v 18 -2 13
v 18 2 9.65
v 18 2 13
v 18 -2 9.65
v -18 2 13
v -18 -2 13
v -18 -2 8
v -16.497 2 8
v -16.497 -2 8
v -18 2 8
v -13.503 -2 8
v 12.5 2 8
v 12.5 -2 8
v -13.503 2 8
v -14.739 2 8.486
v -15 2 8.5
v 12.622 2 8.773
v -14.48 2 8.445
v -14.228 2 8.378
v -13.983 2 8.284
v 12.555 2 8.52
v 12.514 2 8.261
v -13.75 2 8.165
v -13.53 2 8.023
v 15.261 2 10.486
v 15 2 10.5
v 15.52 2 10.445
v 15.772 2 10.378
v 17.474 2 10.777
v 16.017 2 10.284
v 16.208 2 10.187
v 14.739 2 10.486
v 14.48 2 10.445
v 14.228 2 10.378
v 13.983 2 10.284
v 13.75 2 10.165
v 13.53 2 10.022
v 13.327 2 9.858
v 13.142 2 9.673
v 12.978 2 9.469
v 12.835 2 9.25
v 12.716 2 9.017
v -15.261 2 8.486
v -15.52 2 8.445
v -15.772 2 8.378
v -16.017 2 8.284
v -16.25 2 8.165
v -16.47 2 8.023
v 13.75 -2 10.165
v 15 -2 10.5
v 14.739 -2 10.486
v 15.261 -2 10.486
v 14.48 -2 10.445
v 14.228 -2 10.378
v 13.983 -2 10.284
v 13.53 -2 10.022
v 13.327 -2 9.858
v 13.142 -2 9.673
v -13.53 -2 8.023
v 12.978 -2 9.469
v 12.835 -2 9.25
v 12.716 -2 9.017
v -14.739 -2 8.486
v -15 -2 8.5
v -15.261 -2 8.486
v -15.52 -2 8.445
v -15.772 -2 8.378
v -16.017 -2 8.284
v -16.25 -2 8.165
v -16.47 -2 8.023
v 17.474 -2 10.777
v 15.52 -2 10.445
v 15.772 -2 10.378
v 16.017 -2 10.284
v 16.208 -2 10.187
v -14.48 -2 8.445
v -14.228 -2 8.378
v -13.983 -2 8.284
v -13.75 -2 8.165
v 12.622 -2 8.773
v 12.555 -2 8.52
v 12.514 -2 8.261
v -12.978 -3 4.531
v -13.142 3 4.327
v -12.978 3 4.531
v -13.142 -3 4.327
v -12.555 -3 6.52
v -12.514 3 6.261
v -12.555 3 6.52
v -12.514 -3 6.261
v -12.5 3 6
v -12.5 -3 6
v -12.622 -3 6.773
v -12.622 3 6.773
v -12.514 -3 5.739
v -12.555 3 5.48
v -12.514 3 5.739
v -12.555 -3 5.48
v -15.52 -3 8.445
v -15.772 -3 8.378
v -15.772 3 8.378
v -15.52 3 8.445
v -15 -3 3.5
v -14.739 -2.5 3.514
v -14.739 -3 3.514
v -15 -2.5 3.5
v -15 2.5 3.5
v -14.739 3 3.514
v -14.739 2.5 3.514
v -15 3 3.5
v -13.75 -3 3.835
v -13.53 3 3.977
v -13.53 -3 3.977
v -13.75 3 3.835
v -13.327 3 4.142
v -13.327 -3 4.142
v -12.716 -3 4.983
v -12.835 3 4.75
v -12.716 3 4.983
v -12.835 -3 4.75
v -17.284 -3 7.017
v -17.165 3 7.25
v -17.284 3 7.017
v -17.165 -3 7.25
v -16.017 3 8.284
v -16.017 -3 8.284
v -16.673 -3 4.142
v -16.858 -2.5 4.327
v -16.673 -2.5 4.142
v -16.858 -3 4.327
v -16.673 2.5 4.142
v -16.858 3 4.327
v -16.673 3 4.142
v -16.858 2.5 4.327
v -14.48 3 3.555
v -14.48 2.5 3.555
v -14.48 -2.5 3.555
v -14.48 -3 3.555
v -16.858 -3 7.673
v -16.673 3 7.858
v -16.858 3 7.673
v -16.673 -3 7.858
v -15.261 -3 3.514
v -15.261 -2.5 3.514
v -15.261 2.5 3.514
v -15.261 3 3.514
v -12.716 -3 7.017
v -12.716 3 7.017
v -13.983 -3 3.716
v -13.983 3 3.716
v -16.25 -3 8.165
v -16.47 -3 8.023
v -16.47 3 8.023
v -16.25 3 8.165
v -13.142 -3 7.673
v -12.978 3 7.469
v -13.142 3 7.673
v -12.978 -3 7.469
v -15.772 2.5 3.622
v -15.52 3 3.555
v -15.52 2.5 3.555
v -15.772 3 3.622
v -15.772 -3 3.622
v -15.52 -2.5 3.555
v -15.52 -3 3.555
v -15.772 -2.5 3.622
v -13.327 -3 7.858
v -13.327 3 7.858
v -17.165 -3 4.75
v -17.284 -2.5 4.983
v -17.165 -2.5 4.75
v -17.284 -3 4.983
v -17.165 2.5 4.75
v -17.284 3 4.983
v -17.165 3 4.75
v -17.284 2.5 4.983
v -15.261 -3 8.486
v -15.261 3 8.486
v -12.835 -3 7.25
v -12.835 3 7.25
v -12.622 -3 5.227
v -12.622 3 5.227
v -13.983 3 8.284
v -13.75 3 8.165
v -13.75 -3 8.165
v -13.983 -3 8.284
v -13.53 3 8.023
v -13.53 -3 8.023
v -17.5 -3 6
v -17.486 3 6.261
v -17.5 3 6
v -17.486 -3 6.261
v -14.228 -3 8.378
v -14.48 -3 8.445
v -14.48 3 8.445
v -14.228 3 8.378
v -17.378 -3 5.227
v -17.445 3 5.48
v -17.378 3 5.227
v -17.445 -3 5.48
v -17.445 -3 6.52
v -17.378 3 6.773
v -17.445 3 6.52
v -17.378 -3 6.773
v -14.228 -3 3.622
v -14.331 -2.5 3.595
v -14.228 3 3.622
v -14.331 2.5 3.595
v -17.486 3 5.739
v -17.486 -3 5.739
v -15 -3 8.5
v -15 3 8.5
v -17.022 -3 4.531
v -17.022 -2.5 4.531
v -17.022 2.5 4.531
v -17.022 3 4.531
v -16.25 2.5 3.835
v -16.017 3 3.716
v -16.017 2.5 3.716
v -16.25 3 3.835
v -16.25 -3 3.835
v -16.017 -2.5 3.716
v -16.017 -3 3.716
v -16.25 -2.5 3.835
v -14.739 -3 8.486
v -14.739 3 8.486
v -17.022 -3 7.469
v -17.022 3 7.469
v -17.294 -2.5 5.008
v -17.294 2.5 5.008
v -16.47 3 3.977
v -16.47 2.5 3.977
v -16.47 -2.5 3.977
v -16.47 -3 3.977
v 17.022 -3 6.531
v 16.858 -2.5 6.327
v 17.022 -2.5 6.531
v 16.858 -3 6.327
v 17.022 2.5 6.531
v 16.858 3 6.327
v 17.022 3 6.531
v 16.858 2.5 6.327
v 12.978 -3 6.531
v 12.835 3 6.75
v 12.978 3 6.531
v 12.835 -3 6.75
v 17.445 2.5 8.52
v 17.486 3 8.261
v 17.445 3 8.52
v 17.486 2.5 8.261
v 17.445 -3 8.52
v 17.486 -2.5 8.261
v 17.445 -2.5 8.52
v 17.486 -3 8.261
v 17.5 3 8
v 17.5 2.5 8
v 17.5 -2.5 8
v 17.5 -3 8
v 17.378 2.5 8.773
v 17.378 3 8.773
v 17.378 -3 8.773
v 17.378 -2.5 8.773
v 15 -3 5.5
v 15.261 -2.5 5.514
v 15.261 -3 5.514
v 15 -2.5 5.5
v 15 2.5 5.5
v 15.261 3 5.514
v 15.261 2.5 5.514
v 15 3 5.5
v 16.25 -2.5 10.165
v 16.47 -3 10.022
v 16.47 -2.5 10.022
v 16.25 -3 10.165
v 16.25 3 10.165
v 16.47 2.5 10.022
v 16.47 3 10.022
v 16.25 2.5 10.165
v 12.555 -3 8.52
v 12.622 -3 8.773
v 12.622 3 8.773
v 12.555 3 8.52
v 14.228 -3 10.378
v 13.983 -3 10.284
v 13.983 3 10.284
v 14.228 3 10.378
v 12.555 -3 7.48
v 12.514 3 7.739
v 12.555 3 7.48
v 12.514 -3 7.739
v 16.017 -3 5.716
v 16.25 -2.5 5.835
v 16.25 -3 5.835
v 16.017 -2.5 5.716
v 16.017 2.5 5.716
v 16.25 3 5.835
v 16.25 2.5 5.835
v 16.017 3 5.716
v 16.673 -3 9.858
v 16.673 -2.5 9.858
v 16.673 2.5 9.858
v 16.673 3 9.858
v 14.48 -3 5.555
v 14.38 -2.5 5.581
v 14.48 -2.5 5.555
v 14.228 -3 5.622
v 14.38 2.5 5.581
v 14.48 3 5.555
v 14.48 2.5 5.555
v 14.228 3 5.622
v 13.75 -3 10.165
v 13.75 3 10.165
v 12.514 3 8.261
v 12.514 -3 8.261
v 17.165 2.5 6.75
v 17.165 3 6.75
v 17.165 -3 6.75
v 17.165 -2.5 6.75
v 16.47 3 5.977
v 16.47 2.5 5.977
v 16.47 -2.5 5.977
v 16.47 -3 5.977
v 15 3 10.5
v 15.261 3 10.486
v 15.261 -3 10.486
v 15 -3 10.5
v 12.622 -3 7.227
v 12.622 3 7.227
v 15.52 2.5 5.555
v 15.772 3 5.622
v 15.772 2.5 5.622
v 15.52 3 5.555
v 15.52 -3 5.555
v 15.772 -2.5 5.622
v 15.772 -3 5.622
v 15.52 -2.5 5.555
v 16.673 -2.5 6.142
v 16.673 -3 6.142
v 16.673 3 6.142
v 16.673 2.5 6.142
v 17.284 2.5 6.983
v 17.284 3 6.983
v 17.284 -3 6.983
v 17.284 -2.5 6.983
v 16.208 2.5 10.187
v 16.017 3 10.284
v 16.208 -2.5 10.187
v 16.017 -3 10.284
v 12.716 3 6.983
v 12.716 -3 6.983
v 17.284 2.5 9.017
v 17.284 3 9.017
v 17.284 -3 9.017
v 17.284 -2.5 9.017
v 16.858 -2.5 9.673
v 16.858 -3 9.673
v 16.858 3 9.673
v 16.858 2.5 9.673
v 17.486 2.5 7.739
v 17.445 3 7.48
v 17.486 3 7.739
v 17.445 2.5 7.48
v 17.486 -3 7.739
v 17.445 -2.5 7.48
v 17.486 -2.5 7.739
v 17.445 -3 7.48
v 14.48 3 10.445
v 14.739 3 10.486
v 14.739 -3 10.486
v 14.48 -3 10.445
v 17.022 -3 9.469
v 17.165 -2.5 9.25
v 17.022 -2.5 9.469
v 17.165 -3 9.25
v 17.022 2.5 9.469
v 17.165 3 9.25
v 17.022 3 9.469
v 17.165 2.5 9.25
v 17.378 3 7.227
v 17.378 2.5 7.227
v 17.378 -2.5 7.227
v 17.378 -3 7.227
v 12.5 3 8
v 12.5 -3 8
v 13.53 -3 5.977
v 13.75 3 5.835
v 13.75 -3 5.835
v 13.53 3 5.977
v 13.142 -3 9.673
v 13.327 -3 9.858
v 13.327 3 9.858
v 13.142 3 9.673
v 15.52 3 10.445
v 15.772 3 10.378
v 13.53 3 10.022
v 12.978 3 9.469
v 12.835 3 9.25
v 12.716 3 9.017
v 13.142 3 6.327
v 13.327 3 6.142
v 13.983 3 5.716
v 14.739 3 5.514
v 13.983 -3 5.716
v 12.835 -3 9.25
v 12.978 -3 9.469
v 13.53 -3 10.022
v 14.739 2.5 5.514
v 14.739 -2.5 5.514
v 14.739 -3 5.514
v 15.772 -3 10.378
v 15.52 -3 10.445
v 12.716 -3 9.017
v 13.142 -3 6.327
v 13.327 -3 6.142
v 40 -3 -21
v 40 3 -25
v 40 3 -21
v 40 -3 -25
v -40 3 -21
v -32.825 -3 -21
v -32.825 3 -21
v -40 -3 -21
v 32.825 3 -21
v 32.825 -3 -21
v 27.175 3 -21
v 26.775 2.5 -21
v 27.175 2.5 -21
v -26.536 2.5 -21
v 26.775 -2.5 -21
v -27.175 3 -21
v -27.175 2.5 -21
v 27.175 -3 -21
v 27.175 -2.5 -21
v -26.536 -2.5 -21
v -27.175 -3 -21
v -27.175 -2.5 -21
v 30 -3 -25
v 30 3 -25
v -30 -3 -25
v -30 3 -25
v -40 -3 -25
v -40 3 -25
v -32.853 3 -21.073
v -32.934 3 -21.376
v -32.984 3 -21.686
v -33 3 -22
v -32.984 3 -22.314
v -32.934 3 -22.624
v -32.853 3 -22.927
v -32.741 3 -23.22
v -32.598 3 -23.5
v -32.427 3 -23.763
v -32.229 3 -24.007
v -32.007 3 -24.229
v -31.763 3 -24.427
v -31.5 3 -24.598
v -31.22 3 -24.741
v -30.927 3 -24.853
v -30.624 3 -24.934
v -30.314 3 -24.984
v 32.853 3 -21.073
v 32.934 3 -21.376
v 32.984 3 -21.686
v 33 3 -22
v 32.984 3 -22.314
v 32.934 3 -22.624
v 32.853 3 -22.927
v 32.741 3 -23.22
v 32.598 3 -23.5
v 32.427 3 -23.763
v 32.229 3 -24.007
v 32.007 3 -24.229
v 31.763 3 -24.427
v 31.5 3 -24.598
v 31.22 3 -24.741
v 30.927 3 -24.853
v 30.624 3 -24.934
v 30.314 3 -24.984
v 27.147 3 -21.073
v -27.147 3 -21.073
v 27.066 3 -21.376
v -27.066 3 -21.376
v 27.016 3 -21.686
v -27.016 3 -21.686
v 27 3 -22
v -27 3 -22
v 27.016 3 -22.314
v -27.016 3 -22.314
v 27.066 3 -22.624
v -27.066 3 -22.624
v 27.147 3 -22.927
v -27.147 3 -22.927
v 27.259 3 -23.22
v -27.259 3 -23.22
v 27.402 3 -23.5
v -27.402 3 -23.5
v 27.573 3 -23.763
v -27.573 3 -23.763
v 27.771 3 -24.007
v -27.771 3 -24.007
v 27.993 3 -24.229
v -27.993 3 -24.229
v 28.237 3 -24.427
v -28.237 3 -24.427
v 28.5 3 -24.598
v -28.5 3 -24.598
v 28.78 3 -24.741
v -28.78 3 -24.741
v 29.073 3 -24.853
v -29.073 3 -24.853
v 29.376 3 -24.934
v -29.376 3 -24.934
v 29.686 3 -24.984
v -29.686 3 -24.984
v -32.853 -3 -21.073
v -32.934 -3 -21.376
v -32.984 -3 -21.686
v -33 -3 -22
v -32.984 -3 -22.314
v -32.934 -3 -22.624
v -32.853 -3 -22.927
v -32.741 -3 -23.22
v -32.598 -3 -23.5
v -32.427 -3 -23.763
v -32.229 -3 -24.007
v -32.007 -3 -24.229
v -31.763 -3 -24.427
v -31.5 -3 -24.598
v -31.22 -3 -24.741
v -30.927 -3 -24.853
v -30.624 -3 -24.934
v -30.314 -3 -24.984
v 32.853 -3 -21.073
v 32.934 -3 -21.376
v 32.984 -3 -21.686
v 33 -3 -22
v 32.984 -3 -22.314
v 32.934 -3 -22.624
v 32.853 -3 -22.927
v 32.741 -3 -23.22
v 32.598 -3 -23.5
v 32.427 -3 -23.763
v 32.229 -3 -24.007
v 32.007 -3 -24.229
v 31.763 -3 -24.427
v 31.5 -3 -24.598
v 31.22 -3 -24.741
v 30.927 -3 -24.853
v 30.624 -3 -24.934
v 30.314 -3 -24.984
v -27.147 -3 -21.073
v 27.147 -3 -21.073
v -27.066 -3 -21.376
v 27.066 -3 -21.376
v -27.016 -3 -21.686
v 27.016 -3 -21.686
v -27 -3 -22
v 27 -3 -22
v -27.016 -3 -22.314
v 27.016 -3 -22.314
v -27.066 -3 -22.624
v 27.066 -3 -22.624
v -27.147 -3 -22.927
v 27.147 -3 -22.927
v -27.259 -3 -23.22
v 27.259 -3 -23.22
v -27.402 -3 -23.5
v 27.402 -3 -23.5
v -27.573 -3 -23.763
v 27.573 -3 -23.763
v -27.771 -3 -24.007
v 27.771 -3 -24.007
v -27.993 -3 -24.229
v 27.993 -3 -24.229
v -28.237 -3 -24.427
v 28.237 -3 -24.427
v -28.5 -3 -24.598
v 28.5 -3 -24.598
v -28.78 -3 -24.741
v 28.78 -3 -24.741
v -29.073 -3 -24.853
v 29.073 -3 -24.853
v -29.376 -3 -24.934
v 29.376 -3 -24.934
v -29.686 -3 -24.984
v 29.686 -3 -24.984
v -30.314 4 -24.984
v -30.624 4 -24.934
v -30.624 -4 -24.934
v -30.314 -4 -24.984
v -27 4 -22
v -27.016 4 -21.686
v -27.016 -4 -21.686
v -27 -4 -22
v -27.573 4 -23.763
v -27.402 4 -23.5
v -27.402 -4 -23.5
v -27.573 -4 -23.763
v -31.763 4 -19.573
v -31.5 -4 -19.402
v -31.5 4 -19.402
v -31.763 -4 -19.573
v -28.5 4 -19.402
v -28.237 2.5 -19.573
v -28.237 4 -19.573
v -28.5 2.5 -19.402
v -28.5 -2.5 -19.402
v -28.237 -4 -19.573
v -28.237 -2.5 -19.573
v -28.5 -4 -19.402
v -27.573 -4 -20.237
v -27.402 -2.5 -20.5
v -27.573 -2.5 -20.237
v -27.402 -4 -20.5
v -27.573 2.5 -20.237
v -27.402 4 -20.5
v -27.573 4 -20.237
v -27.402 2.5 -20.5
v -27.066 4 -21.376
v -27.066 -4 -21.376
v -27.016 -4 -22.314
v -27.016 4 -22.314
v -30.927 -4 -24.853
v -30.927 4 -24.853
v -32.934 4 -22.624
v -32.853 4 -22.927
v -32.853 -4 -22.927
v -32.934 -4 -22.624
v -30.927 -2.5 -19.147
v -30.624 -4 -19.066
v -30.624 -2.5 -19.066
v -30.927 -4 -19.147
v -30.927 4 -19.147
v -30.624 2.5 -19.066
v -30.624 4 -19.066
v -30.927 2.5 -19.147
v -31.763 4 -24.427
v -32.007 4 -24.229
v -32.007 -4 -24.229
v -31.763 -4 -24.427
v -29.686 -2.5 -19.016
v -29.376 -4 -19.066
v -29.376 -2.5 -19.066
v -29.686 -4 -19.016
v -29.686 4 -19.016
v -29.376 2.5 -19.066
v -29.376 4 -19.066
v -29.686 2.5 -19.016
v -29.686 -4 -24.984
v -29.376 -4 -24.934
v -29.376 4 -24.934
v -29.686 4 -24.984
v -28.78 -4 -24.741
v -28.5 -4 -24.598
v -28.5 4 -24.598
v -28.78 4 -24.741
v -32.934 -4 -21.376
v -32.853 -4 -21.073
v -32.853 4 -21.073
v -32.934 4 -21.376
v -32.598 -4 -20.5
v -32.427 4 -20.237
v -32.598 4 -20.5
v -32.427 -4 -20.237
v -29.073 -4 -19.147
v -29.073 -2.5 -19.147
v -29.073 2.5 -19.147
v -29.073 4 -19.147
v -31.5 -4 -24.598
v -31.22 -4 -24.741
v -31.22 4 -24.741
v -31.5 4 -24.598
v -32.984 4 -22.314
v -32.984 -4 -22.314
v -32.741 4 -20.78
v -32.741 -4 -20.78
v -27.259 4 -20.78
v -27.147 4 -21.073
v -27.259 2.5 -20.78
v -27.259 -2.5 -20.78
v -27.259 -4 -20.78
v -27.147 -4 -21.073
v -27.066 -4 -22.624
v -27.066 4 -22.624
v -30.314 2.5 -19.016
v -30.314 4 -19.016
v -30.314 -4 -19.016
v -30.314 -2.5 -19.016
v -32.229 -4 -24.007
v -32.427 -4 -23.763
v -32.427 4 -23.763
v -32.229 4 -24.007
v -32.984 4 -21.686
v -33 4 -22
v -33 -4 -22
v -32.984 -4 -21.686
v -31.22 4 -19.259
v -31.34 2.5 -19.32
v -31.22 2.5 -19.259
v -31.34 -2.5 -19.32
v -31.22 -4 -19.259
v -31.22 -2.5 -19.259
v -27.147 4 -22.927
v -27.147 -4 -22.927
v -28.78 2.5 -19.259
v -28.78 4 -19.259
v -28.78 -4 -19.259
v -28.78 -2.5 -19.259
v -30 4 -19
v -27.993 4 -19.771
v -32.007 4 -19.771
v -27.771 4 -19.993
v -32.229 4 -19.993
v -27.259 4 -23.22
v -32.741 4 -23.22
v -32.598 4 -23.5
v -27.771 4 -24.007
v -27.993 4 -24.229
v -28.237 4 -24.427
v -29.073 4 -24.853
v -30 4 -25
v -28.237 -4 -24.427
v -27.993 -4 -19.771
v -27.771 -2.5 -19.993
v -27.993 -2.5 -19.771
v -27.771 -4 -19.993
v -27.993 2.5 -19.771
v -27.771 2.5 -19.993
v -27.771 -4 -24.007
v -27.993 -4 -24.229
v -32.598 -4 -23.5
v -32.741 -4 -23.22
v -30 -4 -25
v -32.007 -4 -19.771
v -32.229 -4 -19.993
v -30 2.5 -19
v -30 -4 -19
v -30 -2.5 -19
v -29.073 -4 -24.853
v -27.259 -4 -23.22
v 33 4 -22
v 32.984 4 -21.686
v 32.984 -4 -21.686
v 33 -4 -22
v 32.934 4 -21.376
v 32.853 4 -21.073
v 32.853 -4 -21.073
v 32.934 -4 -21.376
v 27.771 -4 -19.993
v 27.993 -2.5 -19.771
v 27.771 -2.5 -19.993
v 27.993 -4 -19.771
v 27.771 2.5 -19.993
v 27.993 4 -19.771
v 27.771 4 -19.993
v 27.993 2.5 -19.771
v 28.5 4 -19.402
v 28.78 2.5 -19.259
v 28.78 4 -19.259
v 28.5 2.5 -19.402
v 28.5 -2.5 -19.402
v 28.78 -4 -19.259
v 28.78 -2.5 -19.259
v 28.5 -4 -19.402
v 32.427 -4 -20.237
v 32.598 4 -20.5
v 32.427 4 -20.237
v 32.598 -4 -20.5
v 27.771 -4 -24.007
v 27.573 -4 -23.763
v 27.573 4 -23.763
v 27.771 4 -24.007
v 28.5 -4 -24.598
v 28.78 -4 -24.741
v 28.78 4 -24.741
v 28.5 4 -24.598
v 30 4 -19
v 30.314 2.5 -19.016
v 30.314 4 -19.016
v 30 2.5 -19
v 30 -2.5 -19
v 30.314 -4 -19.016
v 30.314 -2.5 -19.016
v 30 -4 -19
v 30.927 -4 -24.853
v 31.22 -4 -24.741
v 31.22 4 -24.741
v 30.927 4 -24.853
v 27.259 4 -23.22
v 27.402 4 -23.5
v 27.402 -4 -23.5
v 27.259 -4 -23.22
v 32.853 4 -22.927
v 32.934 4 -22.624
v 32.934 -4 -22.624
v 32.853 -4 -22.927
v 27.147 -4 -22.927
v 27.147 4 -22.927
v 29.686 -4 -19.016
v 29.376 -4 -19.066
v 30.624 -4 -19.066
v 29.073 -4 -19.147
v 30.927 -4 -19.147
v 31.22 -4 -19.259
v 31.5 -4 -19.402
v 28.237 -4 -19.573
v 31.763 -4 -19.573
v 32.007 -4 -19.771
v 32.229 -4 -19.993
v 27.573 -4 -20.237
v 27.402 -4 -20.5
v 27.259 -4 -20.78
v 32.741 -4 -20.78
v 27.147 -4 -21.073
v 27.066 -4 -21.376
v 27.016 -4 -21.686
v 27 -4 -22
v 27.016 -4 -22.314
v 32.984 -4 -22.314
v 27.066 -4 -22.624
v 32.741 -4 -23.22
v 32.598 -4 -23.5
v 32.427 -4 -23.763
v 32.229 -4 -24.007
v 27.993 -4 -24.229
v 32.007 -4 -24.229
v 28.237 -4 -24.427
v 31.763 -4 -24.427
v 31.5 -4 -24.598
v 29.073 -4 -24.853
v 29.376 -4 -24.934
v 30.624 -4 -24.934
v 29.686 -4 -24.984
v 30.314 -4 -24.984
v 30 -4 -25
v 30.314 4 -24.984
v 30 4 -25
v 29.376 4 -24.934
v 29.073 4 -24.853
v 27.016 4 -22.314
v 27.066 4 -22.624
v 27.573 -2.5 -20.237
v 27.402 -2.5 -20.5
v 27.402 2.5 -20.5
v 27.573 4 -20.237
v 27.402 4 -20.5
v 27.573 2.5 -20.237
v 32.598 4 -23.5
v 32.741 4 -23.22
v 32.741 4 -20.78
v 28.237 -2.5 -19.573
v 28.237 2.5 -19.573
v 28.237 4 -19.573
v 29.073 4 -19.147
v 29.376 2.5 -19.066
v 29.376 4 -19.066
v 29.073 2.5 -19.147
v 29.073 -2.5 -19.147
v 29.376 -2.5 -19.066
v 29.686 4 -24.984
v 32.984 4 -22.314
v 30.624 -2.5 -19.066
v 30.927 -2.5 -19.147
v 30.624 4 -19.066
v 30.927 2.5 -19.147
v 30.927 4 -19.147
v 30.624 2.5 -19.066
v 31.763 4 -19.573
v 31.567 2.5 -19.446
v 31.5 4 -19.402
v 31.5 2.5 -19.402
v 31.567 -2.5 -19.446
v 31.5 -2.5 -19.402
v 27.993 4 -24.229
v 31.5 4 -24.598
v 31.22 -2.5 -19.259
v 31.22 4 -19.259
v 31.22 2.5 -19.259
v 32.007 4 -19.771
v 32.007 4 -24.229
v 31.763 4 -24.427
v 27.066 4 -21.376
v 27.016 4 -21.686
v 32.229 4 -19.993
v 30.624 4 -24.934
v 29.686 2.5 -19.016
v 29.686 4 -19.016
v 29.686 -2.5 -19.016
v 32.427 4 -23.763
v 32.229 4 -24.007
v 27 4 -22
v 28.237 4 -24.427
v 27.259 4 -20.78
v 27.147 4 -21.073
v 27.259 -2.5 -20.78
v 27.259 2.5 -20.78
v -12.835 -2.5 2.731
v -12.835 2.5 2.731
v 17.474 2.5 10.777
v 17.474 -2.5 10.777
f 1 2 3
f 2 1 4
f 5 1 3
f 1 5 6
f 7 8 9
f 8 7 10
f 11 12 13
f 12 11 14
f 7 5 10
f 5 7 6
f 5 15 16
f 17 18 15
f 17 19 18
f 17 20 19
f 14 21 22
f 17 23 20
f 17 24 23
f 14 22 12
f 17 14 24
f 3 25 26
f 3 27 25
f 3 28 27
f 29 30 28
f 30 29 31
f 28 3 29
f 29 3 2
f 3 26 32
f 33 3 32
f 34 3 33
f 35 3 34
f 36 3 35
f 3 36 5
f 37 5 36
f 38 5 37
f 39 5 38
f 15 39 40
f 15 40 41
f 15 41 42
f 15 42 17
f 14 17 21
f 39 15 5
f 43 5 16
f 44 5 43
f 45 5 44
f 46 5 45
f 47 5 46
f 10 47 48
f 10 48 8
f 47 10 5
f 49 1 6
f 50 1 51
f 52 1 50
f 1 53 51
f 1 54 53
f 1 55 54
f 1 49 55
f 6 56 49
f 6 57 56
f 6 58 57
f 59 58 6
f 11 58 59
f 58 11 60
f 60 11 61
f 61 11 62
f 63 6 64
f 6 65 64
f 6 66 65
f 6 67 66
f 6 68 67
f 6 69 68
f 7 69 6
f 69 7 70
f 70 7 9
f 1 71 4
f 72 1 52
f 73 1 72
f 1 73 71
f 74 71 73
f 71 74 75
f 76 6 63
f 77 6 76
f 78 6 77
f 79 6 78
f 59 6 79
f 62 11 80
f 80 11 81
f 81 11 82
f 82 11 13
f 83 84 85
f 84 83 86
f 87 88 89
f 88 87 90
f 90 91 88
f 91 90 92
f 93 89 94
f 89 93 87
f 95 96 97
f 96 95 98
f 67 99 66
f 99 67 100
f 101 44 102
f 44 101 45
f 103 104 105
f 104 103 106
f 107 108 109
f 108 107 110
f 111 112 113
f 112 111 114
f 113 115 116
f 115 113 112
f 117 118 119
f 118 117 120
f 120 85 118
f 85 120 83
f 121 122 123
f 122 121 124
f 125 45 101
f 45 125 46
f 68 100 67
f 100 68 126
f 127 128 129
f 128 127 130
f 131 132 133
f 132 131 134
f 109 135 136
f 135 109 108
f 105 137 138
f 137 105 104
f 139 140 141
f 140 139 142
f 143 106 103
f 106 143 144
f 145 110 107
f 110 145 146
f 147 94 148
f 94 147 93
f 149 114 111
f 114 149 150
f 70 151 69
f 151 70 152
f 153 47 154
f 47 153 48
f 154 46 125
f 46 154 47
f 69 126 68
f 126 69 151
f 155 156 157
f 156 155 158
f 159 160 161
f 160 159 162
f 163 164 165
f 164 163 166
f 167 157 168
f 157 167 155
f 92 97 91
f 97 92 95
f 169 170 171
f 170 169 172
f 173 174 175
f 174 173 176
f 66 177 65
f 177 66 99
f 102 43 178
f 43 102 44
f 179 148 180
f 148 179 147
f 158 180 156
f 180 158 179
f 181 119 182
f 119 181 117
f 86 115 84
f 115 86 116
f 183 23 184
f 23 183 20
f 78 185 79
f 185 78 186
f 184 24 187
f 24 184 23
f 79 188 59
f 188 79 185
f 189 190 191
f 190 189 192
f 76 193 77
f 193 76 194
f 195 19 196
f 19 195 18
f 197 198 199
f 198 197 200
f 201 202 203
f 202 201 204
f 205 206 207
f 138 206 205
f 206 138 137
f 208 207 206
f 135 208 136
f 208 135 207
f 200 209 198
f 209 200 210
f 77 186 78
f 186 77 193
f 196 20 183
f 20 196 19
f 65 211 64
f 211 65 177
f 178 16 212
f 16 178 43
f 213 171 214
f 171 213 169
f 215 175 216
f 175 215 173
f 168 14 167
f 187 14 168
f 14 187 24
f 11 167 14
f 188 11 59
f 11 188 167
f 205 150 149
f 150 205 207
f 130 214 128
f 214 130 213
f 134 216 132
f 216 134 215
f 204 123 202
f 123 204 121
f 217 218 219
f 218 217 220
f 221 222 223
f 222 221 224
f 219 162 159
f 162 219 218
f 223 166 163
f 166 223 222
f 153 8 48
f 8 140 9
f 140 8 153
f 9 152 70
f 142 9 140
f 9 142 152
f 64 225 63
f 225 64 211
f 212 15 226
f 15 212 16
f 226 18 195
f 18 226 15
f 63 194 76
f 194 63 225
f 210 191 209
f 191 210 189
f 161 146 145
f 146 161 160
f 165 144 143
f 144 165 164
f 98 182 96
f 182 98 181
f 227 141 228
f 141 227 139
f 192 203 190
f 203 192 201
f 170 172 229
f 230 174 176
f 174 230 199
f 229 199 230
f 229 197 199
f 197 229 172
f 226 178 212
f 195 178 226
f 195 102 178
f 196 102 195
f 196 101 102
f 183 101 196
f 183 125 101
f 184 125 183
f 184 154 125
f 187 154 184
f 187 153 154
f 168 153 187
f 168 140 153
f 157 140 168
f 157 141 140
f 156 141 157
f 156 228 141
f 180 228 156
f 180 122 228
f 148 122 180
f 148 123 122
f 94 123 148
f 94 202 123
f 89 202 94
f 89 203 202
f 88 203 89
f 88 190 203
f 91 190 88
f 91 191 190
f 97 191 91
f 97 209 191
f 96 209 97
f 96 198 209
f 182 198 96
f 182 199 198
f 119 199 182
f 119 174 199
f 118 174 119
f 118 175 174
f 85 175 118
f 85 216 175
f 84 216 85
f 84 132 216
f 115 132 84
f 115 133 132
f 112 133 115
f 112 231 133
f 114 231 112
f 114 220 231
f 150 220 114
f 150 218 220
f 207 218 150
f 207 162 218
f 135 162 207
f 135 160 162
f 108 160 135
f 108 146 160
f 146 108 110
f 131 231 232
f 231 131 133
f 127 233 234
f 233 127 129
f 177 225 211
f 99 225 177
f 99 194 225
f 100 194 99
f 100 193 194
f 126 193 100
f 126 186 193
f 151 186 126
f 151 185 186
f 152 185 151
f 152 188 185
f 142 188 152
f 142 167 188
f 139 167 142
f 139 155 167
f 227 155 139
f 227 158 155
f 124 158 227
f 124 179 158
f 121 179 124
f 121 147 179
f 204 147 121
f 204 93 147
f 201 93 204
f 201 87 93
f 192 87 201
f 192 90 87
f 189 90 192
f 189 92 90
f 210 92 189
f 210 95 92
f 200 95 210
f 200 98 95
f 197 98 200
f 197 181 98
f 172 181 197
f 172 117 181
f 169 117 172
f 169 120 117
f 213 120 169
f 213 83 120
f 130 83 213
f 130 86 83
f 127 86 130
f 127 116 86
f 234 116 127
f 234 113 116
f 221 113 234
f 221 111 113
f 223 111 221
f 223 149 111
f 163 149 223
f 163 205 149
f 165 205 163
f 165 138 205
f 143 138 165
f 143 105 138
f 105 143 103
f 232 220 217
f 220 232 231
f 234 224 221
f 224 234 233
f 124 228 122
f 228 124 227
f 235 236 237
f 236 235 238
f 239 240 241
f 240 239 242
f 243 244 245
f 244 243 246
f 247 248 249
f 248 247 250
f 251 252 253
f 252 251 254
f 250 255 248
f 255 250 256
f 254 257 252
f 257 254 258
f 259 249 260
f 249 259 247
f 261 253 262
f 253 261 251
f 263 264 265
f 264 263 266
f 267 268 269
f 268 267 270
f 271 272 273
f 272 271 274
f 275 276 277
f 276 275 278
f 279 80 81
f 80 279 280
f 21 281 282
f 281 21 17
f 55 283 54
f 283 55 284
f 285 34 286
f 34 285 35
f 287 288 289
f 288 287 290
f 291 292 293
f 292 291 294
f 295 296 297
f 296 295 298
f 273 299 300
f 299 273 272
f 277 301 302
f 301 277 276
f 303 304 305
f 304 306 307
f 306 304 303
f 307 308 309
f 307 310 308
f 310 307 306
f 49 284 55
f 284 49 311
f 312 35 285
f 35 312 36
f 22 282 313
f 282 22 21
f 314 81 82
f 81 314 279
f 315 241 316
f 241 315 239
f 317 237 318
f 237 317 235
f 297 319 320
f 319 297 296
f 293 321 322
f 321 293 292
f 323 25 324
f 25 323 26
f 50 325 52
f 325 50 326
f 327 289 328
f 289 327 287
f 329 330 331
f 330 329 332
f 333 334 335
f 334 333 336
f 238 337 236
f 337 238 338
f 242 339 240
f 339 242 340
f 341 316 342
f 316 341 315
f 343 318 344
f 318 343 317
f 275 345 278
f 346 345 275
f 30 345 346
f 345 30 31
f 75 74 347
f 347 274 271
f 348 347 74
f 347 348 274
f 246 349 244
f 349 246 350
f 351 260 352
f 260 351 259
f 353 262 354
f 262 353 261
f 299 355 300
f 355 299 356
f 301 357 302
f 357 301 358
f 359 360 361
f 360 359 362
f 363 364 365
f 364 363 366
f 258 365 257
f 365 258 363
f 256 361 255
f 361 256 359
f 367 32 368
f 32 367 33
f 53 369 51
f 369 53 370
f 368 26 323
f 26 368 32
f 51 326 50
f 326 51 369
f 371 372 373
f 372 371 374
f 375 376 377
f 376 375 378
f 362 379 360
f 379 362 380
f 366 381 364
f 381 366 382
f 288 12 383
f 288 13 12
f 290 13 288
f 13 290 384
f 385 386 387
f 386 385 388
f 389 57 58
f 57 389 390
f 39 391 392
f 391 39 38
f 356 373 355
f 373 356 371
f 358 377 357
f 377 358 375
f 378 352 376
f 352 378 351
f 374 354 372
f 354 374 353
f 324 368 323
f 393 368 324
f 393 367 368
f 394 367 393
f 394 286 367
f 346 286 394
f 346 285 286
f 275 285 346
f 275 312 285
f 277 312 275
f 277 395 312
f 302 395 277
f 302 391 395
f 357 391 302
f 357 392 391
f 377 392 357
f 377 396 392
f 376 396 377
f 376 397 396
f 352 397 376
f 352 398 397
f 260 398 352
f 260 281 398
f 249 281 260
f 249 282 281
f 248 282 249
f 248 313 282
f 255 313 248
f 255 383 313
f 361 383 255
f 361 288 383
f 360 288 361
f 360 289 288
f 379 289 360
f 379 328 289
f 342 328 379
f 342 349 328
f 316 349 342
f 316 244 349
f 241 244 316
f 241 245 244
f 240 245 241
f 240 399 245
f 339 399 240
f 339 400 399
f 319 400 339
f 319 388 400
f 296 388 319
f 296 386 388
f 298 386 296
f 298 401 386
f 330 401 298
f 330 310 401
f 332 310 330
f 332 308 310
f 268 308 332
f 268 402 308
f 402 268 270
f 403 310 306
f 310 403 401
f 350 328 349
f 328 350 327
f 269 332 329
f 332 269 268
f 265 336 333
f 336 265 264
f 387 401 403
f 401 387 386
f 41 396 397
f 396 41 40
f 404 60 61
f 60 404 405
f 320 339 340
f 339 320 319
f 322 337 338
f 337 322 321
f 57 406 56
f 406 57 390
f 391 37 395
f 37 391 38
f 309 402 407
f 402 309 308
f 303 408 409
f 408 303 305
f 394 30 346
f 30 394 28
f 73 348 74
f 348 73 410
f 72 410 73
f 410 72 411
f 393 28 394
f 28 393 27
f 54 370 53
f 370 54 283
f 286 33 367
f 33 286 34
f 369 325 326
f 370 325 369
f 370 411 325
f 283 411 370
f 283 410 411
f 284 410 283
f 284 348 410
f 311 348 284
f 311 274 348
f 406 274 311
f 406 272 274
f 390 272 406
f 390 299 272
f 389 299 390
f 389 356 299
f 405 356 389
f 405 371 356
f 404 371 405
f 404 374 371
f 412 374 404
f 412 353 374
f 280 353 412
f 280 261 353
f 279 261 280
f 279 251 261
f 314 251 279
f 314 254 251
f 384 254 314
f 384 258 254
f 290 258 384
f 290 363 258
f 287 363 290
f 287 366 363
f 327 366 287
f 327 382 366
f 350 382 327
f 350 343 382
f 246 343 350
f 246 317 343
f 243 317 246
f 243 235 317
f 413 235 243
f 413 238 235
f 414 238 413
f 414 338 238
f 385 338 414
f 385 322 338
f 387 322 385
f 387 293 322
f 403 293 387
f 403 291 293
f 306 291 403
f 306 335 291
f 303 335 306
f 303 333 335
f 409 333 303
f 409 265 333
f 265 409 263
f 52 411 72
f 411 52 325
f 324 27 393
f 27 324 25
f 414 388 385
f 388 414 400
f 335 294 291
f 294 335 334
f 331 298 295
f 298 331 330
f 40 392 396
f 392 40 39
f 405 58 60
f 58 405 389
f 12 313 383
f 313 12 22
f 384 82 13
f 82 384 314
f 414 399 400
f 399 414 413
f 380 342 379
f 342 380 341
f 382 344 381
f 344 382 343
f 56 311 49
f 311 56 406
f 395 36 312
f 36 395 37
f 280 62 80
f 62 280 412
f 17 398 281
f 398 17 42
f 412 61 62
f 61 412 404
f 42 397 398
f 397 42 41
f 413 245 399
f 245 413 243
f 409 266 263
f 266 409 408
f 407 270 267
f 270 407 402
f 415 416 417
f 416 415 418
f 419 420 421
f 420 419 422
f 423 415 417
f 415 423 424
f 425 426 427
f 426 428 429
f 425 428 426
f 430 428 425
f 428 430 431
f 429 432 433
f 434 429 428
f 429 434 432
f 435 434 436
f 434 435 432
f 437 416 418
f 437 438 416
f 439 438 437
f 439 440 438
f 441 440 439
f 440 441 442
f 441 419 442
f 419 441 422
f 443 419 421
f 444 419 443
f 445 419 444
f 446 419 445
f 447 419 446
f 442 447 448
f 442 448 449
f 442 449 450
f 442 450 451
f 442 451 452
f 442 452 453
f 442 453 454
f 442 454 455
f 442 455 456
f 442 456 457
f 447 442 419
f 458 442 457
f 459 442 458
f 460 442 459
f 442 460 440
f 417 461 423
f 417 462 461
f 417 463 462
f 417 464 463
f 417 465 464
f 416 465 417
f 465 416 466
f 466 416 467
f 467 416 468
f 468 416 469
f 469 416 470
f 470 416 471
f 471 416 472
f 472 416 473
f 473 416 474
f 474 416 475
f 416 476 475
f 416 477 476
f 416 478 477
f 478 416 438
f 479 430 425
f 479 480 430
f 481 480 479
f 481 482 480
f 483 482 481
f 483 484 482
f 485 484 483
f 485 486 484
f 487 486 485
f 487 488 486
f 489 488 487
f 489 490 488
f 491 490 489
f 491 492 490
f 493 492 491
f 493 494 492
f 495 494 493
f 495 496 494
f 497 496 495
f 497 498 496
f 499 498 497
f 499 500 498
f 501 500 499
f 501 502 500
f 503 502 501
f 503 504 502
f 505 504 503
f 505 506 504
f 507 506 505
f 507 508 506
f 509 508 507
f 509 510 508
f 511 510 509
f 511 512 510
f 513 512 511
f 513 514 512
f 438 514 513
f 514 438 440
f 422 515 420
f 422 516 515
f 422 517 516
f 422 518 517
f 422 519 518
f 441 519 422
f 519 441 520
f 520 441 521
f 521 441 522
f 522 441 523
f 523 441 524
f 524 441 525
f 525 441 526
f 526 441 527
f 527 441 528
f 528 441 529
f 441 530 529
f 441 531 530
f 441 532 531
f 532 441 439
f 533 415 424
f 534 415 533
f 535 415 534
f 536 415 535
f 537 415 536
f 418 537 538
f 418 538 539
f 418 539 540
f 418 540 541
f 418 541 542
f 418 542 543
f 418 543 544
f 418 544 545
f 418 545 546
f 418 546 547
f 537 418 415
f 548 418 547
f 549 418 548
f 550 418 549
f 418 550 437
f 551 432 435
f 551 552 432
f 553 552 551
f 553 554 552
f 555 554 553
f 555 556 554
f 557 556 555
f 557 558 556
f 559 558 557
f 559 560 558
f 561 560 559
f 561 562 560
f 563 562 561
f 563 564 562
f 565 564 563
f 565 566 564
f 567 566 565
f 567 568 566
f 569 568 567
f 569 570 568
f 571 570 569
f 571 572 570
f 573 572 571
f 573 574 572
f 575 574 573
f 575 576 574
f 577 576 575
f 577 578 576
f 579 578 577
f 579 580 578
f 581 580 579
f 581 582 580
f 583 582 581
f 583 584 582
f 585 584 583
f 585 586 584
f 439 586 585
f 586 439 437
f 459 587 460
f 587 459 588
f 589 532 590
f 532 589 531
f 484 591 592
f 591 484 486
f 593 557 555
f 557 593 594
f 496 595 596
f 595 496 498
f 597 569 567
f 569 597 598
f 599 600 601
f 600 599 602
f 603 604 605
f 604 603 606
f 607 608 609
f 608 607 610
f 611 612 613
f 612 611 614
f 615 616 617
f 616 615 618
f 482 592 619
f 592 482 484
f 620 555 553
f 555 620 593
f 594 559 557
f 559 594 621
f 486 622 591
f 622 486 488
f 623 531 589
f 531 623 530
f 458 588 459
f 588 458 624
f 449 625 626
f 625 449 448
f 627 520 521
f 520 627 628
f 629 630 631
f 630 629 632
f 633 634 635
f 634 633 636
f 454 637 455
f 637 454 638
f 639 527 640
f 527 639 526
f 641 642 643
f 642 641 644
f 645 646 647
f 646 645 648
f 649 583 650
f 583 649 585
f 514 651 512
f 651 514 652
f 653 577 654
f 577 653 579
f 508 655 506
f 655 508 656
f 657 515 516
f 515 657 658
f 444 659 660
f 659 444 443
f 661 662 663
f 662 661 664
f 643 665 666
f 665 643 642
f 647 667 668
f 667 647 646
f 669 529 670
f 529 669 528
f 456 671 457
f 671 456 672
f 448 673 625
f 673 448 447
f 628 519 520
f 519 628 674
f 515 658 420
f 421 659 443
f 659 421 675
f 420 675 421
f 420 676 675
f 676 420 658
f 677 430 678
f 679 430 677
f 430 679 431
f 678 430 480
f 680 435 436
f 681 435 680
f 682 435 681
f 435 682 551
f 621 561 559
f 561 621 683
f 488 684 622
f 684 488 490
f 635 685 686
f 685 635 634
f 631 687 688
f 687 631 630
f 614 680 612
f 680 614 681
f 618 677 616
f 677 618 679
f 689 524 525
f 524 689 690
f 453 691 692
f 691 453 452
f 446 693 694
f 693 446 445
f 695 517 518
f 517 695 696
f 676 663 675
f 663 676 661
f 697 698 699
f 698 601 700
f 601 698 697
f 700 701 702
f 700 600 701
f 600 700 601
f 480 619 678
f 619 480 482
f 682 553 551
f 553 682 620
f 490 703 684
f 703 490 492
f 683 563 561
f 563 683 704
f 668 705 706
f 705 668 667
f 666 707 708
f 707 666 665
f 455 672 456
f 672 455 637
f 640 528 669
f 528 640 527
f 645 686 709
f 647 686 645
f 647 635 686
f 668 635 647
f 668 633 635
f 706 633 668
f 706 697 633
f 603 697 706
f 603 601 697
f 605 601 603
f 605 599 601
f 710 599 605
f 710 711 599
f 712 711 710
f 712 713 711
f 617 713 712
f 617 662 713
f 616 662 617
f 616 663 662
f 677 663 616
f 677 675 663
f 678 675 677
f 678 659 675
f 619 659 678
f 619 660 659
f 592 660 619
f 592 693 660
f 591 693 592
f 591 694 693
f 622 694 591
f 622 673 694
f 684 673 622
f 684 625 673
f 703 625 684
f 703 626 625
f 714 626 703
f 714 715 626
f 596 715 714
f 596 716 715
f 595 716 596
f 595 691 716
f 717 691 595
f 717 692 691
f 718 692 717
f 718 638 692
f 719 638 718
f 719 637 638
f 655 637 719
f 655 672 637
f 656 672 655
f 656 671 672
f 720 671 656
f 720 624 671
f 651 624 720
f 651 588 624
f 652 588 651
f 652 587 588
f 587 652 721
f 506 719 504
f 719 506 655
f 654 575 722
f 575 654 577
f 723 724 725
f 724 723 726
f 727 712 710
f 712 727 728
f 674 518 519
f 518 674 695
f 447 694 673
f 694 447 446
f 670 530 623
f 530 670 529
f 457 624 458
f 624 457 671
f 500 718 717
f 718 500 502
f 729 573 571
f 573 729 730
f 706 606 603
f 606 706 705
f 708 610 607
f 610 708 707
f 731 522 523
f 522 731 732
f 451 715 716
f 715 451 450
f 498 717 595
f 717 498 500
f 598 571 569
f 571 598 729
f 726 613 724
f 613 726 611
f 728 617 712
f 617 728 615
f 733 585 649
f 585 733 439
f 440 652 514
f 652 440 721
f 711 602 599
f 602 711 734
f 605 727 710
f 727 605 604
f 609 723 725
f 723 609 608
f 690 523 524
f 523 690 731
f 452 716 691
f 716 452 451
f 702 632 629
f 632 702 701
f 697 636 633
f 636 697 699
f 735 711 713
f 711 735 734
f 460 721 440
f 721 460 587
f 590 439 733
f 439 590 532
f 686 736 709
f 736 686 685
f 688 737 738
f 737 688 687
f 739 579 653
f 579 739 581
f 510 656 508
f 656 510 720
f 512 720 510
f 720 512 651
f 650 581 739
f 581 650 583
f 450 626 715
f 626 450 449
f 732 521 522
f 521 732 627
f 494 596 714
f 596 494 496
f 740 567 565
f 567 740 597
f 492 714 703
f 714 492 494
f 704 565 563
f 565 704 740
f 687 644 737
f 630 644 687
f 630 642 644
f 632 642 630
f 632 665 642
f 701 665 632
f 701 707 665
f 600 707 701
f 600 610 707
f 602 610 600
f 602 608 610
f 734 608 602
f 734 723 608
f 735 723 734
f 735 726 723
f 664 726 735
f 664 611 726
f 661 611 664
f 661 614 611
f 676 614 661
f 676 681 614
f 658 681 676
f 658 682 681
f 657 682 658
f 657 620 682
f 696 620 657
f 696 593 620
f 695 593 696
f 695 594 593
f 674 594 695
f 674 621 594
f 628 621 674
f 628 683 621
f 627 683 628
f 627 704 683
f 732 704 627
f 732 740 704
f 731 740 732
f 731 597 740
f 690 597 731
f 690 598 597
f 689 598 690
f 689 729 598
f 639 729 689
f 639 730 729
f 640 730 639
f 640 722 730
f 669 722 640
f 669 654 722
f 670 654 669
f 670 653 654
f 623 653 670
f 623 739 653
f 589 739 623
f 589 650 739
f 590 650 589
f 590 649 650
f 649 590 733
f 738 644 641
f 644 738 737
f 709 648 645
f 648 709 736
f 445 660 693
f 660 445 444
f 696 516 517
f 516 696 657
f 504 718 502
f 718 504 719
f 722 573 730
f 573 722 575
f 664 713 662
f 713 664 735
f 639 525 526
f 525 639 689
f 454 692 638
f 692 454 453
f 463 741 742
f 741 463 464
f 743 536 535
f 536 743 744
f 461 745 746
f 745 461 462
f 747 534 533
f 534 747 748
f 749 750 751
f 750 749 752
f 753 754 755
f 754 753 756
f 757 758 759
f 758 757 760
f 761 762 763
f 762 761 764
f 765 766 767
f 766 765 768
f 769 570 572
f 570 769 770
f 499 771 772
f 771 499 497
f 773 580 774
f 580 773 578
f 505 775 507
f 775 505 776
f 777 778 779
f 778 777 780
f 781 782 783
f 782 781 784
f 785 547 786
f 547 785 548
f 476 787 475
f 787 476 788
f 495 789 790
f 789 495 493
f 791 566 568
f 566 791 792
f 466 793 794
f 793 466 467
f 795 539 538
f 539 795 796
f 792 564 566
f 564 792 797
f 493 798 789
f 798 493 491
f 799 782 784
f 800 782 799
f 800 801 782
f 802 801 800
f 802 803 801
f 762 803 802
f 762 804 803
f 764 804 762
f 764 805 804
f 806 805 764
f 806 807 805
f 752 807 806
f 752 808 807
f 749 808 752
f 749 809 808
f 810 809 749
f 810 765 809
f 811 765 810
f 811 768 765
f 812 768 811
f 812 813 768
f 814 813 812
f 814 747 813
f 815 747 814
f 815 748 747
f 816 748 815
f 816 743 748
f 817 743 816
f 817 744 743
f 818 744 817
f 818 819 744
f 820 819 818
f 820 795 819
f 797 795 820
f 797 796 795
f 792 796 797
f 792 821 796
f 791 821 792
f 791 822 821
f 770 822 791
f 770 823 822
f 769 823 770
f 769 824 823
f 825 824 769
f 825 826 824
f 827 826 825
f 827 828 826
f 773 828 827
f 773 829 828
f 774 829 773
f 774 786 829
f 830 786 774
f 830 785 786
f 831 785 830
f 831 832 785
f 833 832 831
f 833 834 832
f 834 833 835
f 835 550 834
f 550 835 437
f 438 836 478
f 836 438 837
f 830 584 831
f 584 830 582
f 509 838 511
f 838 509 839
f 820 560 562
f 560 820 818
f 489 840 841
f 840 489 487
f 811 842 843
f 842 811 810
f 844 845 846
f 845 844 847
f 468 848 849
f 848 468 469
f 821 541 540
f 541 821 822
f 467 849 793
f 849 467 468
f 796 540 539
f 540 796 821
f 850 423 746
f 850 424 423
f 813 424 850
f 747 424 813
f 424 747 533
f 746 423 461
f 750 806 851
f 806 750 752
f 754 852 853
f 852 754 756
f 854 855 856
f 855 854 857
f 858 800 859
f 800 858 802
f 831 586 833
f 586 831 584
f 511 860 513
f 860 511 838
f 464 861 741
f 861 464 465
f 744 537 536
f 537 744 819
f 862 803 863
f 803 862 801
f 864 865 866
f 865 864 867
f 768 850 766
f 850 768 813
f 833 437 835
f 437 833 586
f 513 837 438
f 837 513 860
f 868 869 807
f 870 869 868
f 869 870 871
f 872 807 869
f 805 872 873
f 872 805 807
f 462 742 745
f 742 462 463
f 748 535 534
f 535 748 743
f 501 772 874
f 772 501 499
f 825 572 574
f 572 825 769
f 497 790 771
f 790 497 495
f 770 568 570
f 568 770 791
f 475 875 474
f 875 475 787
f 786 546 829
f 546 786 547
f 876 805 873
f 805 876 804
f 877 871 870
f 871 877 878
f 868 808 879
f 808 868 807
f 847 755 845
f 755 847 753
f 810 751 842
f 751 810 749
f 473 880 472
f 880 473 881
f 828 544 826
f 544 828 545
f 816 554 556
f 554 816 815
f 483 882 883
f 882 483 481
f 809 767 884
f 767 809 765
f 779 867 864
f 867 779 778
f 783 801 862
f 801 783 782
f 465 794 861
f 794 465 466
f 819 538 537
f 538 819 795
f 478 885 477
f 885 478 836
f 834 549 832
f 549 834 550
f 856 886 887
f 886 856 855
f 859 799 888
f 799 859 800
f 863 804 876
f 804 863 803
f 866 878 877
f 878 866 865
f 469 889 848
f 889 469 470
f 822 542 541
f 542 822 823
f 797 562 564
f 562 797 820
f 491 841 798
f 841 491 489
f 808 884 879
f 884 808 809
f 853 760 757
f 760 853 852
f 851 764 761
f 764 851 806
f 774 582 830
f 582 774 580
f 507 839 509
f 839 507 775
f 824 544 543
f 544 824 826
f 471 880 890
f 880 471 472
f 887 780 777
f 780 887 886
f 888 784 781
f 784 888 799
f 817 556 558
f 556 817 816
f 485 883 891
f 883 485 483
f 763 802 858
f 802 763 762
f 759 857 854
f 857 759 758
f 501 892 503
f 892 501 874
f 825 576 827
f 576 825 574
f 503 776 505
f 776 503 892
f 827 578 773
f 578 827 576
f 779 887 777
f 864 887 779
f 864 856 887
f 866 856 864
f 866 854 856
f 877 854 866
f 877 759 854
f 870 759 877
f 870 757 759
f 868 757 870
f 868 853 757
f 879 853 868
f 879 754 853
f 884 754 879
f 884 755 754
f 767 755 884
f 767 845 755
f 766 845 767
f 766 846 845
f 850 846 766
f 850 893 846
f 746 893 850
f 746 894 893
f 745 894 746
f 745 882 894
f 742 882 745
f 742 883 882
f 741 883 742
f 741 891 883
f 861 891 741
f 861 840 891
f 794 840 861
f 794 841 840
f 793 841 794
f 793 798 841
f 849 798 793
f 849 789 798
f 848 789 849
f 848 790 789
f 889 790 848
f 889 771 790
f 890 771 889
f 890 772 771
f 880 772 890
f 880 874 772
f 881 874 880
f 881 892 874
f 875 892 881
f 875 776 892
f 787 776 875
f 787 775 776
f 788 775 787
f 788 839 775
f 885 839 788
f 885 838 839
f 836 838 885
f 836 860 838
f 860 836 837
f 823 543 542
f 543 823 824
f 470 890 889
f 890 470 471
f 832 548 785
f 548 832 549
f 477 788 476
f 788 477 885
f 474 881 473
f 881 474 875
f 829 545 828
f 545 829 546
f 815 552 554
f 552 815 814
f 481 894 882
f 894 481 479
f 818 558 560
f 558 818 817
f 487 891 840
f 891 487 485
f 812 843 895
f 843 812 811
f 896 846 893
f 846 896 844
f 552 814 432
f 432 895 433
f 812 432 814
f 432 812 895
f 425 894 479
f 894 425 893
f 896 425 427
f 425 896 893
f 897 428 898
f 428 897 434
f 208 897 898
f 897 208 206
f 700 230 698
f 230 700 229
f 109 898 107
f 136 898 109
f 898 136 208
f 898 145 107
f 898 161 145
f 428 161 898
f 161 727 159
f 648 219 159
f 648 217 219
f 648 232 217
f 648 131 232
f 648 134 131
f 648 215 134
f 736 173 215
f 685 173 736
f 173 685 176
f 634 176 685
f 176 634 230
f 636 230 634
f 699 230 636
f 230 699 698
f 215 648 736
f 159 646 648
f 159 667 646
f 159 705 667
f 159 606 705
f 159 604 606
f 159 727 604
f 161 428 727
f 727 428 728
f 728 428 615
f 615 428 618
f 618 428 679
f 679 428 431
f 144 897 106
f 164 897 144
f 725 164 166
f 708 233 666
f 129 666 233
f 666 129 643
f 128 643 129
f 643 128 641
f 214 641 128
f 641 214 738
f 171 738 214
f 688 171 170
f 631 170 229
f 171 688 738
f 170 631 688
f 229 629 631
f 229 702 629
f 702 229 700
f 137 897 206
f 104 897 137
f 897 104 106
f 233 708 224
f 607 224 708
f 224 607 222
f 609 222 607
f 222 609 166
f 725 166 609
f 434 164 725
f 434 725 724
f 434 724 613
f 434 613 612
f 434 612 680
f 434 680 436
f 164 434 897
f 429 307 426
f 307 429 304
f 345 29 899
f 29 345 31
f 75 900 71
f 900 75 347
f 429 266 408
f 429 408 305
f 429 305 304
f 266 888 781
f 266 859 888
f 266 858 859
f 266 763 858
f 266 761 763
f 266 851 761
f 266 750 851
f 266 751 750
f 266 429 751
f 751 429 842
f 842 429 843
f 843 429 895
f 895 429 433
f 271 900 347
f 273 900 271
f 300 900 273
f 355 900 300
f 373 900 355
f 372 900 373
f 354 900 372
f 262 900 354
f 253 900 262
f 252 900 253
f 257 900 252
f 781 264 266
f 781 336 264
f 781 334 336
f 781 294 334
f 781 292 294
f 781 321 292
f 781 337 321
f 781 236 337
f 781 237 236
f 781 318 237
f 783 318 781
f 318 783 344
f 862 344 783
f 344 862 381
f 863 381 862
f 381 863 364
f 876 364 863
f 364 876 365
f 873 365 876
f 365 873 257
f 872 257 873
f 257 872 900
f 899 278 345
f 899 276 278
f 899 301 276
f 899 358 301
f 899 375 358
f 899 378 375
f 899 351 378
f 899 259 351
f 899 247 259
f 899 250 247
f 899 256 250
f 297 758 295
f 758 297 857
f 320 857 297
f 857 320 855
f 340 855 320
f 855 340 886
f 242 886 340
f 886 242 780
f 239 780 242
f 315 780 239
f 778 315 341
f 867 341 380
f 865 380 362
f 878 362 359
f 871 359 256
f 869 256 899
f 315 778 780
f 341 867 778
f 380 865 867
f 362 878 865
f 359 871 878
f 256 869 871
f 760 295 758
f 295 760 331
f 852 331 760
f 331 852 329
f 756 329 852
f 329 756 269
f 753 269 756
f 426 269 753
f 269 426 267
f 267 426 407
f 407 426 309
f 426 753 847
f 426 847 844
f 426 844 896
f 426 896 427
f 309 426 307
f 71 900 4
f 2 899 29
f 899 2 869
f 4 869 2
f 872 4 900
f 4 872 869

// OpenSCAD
// file: _common.scad
// mechanism 共用設定 + 齒輪 module
$fn = 60;

// 簡化齒輪：N 個齒、節圓半徑 r、齒高 h、齒寬 w
module simple_gear(N = 16, r = 20, h = 4, thick = 6) {
  union() {
    // 主圓盤
    cylinder(h = thick, r = r, center = true);
    // 齒（梯形）
    for (i = [0:N-1]) {
      rotate([0, 0, i * 360 / N])
        translate([r, 0, 0])
          linear_extrude(height = thick, center = true)
            polygon([[0, -2.4], [h, -1.4], [h, 1.4], [0, 2.4]]);
    }
    // 中心凸軸
    cylinder(h = thick * 1.4, r = r * 0.18, center = true);
  }
}
// main file
// 四連桿 Four-bar Linkage — 4 根桿件 + 4 個 pivot
include <_common.scad>

// 機架（固定桿）
color([0.28, 0.34, 0.43])
  translate([-40, -3, -25]) cube([80, 6, 4]);

// 左 pivot（固定）
color([0.4, 0.4, 0.4])
  translate([-30, 0, -22]) rotate([90, 0, 0]) cylinder(h = 8, r = 3, center = true);

// 右 pivot（固定）
color([0.4, 0.4, 0.4])
  translate([30, 0, -22]) rotate([90, 0, 0]) cylinder(h = 8, r = 3, center = true);

// 左輸入連桿（從左 pivot 往上 + 偏左）
color([0.08, 0.71, 0.65])
  translate([-30, 0, -22]) rotate([0, 30, 0])
    translate([-2.5, -2.5, 0]) cube([5, 5, 30]);

// 右輸出連桿（從右 pivot 往上 + 偏右）
color([0.08, 0.71, 0.65])
  translate([30, 0, -22]) rotate([0, -25, 0])
    translate([-2.5, -2.5, 0]) cube([5, 5, 35]);

// 上連桿（連接兩根動桿頂部）
// 左頂端位置：(-30 + 30*sin30°, 0, -22 + 30*cos30°) ≈ (-15, 0, 4)
// 右頂端位置：(30 - 35*sin25°, 0, -22 + 35*cos25°) ≈ (15, 0, 9.7)
color([0.86, 0.4, 0.2]) {
  // 連結桿（簡化為水平桿）
  translate([-18, -2, 8]) cube([36, 4, 5]);
  // 兩端 pivot
  translate([-15, 0, 6]) rotate([90, 0, 0]) cylinder(h = 6, r = 2.5, center = true);
  translate([15, 0, 8]) rotate([90, 0, 0]) cylinder(h = 6, r = 2.5, center = true);
}
